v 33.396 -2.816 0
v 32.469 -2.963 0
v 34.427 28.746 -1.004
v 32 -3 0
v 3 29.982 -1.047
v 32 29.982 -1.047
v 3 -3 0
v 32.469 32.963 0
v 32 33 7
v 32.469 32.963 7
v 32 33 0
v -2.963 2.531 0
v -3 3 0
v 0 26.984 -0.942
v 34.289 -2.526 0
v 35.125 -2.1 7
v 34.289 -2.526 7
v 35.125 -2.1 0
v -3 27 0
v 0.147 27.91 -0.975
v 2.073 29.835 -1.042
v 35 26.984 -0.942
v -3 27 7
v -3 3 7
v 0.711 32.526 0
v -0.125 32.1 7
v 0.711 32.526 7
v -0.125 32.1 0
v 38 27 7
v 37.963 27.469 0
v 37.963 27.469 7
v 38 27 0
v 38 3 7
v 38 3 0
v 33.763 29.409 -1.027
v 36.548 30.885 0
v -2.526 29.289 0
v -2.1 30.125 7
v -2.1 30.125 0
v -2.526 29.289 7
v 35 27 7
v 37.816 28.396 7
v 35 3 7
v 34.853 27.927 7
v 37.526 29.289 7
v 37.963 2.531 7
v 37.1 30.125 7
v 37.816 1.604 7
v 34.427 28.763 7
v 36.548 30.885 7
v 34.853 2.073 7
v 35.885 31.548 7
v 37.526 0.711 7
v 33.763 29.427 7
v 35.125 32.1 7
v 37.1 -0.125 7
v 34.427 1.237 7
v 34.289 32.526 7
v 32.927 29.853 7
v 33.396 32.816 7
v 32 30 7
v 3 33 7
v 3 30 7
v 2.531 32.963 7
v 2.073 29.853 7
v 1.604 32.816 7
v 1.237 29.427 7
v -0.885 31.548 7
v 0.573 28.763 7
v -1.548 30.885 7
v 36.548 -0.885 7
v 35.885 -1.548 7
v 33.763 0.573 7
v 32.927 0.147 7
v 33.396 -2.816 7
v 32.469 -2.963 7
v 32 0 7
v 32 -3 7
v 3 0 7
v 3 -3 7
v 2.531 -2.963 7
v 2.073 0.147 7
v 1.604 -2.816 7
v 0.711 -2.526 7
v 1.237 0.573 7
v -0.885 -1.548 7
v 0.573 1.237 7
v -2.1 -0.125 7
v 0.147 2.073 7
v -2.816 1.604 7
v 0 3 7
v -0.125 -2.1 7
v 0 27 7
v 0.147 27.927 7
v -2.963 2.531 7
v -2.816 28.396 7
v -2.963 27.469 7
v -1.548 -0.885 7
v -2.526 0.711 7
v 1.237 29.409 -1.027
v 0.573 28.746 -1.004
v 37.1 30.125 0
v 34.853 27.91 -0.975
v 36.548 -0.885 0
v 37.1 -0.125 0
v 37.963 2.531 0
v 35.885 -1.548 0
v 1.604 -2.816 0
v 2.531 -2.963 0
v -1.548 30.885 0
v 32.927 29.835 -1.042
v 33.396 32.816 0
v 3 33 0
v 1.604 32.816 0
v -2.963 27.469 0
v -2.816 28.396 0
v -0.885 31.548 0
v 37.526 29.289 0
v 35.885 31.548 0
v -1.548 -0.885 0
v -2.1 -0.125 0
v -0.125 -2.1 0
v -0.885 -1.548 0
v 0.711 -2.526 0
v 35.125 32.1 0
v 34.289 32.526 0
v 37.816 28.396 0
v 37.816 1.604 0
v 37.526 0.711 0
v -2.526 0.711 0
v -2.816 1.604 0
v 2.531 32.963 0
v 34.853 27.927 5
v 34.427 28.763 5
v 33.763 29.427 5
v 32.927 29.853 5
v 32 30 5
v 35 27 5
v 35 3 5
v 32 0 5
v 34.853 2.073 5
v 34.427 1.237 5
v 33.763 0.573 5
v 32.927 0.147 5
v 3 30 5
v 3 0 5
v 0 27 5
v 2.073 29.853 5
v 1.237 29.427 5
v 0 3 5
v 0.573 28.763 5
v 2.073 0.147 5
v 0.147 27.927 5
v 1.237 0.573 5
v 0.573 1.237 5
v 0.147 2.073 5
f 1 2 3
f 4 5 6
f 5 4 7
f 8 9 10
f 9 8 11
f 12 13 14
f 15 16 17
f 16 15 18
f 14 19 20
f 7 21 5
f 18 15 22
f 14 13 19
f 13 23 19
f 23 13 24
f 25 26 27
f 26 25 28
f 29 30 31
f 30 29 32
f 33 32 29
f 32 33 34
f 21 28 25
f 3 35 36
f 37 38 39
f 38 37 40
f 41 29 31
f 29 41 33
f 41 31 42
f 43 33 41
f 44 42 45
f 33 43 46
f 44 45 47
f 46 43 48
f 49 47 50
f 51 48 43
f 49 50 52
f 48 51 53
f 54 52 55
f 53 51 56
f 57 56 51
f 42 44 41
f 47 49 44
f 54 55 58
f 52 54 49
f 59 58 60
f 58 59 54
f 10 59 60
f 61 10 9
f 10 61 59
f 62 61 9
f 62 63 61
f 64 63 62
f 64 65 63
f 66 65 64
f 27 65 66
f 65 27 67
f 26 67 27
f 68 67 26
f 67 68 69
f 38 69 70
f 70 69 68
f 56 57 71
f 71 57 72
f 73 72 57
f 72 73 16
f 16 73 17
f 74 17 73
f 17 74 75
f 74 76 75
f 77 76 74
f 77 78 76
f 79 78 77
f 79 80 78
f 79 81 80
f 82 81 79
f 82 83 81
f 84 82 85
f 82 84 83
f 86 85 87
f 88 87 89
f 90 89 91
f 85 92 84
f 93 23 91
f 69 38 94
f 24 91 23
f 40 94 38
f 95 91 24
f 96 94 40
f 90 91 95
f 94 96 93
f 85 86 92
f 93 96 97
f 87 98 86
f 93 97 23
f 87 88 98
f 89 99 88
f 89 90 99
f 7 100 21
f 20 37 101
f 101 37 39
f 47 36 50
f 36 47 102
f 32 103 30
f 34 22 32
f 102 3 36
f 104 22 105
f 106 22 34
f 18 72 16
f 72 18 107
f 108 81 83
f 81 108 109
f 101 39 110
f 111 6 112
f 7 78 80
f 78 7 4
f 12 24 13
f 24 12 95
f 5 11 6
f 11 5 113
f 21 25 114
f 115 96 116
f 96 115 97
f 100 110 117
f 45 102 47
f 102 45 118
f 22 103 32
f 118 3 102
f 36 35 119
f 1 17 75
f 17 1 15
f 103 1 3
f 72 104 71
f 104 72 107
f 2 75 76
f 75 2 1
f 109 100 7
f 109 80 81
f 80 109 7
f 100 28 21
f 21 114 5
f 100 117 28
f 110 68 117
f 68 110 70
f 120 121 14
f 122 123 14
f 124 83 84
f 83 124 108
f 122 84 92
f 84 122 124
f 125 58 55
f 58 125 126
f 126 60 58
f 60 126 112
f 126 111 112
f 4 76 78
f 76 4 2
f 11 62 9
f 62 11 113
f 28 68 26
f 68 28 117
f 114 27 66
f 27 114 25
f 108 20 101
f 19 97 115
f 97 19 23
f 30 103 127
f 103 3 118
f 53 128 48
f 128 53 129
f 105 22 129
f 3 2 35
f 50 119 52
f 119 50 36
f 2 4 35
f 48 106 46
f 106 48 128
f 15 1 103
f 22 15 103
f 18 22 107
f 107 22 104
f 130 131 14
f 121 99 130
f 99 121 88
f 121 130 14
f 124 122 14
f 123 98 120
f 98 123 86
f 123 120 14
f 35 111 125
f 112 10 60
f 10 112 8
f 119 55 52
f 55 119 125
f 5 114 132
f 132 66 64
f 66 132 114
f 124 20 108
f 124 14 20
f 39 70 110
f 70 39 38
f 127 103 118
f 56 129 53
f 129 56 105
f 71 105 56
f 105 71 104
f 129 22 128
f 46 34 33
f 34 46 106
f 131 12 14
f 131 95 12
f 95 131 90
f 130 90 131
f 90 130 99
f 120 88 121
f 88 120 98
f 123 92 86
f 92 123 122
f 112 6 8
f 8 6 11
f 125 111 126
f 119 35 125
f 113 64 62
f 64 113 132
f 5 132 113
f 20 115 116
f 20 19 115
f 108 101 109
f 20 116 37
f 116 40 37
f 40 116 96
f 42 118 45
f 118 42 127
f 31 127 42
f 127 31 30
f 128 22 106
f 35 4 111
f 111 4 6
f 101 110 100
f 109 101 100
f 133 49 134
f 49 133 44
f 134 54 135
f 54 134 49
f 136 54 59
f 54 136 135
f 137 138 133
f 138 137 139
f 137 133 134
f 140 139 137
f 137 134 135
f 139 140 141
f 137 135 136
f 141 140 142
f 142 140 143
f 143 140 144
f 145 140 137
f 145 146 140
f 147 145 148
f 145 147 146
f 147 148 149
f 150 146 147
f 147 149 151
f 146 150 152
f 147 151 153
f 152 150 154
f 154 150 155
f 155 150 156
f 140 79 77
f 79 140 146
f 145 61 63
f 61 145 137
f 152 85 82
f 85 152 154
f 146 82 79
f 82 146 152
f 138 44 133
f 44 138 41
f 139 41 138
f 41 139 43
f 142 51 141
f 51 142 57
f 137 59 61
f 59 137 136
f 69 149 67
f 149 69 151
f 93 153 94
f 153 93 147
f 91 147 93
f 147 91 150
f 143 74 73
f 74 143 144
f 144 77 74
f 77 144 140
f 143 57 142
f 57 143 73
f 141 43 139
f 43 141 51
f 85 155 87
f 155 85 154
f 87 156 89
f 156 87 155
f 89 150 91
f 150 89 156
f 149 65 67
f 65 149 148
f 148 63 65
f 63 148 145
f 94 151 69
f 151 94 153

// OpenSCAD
// file: ../lib/utils.scad
module cone(r, angle, invert=false) {
    h = tan((180 - angle) / 2) * r;
    translate([0, 0, -h]) {
        if (invert) {
                cylinder(r1=r,r2=0,h=h, $fn=20); 
        } else {
            cylinder(r1=0,r2=r,h=h, $fn=20); 
        }
    }
}

module roundrect(vect, r, $fn=20) {
    sq = len(vect) > 1
        ? [for (i = [0:1:len(vect)-1]) vect[i] - r * 2]
        : vect - r * 2;
    minkowski() {
        square(sq);
        translate([r, r])
            circle(r=r);
    }
}

module screw(r, d, l, head, head_d, cap, angle, $fn=20) {
    radius = r > 0 ? r : d / 2;
    head_r = head > 0 ? head : head_d / 2;

    union() {
        if (angle) {
            translate([0, 0, l])
                cone(head_r, angle, false);
        }
        linear_extrude(l)
            circle(r=radius);
        if (cap > 0) {
            translate([0, 0, l - cap])
                linear_extrude(cap)
                    circle(r=head_r);
        }
    }
}

module inset_screw(r, d, l, head, head_d, cap, angle, inset, $fn=20) {
    screw_height = l - inset;
    head_r = head > 0 ? head : head_d / 2;

    union() {
        screw(
            r=r,
            d=d,
            l=screw_height,
            head=head_r,
            cap=cap,
            angle=angle,
            $fn=$fn
        );
        translate([0, 0, screw_height])
            linear_extrude(inset)
                circle(r=head_r);
    }
}

function inch_to_mm(inches) = inches * 25.4;
// main file
// Angled Foot Riser
// by Nathan Wittstock <nate@fardog.io>

// preview[view: south east, tilt: top diagonal]

use <../lib/utils.scad>;

width = 35;
depth = 30;
height = 5;
radius = 3;

// foot inset
foot_offset = 3;
foot_inset = 2;

x_skew = -2;
y_skew = 0;

difference() {
    hull() {
    linear_extrude(height + foot_inset)
        offset(r=foot_offset)
            roundrect([width, depth], radius);
    rotate([x_skew, y_skew, 0])
        linear_extrude(0.1)
        roundrect([width, depth], radius);
    }
    // foot cut
    translate([0, 0, height])
        linear_extrude(foot_inset)
            roundrect([width, depth], radius);
}
